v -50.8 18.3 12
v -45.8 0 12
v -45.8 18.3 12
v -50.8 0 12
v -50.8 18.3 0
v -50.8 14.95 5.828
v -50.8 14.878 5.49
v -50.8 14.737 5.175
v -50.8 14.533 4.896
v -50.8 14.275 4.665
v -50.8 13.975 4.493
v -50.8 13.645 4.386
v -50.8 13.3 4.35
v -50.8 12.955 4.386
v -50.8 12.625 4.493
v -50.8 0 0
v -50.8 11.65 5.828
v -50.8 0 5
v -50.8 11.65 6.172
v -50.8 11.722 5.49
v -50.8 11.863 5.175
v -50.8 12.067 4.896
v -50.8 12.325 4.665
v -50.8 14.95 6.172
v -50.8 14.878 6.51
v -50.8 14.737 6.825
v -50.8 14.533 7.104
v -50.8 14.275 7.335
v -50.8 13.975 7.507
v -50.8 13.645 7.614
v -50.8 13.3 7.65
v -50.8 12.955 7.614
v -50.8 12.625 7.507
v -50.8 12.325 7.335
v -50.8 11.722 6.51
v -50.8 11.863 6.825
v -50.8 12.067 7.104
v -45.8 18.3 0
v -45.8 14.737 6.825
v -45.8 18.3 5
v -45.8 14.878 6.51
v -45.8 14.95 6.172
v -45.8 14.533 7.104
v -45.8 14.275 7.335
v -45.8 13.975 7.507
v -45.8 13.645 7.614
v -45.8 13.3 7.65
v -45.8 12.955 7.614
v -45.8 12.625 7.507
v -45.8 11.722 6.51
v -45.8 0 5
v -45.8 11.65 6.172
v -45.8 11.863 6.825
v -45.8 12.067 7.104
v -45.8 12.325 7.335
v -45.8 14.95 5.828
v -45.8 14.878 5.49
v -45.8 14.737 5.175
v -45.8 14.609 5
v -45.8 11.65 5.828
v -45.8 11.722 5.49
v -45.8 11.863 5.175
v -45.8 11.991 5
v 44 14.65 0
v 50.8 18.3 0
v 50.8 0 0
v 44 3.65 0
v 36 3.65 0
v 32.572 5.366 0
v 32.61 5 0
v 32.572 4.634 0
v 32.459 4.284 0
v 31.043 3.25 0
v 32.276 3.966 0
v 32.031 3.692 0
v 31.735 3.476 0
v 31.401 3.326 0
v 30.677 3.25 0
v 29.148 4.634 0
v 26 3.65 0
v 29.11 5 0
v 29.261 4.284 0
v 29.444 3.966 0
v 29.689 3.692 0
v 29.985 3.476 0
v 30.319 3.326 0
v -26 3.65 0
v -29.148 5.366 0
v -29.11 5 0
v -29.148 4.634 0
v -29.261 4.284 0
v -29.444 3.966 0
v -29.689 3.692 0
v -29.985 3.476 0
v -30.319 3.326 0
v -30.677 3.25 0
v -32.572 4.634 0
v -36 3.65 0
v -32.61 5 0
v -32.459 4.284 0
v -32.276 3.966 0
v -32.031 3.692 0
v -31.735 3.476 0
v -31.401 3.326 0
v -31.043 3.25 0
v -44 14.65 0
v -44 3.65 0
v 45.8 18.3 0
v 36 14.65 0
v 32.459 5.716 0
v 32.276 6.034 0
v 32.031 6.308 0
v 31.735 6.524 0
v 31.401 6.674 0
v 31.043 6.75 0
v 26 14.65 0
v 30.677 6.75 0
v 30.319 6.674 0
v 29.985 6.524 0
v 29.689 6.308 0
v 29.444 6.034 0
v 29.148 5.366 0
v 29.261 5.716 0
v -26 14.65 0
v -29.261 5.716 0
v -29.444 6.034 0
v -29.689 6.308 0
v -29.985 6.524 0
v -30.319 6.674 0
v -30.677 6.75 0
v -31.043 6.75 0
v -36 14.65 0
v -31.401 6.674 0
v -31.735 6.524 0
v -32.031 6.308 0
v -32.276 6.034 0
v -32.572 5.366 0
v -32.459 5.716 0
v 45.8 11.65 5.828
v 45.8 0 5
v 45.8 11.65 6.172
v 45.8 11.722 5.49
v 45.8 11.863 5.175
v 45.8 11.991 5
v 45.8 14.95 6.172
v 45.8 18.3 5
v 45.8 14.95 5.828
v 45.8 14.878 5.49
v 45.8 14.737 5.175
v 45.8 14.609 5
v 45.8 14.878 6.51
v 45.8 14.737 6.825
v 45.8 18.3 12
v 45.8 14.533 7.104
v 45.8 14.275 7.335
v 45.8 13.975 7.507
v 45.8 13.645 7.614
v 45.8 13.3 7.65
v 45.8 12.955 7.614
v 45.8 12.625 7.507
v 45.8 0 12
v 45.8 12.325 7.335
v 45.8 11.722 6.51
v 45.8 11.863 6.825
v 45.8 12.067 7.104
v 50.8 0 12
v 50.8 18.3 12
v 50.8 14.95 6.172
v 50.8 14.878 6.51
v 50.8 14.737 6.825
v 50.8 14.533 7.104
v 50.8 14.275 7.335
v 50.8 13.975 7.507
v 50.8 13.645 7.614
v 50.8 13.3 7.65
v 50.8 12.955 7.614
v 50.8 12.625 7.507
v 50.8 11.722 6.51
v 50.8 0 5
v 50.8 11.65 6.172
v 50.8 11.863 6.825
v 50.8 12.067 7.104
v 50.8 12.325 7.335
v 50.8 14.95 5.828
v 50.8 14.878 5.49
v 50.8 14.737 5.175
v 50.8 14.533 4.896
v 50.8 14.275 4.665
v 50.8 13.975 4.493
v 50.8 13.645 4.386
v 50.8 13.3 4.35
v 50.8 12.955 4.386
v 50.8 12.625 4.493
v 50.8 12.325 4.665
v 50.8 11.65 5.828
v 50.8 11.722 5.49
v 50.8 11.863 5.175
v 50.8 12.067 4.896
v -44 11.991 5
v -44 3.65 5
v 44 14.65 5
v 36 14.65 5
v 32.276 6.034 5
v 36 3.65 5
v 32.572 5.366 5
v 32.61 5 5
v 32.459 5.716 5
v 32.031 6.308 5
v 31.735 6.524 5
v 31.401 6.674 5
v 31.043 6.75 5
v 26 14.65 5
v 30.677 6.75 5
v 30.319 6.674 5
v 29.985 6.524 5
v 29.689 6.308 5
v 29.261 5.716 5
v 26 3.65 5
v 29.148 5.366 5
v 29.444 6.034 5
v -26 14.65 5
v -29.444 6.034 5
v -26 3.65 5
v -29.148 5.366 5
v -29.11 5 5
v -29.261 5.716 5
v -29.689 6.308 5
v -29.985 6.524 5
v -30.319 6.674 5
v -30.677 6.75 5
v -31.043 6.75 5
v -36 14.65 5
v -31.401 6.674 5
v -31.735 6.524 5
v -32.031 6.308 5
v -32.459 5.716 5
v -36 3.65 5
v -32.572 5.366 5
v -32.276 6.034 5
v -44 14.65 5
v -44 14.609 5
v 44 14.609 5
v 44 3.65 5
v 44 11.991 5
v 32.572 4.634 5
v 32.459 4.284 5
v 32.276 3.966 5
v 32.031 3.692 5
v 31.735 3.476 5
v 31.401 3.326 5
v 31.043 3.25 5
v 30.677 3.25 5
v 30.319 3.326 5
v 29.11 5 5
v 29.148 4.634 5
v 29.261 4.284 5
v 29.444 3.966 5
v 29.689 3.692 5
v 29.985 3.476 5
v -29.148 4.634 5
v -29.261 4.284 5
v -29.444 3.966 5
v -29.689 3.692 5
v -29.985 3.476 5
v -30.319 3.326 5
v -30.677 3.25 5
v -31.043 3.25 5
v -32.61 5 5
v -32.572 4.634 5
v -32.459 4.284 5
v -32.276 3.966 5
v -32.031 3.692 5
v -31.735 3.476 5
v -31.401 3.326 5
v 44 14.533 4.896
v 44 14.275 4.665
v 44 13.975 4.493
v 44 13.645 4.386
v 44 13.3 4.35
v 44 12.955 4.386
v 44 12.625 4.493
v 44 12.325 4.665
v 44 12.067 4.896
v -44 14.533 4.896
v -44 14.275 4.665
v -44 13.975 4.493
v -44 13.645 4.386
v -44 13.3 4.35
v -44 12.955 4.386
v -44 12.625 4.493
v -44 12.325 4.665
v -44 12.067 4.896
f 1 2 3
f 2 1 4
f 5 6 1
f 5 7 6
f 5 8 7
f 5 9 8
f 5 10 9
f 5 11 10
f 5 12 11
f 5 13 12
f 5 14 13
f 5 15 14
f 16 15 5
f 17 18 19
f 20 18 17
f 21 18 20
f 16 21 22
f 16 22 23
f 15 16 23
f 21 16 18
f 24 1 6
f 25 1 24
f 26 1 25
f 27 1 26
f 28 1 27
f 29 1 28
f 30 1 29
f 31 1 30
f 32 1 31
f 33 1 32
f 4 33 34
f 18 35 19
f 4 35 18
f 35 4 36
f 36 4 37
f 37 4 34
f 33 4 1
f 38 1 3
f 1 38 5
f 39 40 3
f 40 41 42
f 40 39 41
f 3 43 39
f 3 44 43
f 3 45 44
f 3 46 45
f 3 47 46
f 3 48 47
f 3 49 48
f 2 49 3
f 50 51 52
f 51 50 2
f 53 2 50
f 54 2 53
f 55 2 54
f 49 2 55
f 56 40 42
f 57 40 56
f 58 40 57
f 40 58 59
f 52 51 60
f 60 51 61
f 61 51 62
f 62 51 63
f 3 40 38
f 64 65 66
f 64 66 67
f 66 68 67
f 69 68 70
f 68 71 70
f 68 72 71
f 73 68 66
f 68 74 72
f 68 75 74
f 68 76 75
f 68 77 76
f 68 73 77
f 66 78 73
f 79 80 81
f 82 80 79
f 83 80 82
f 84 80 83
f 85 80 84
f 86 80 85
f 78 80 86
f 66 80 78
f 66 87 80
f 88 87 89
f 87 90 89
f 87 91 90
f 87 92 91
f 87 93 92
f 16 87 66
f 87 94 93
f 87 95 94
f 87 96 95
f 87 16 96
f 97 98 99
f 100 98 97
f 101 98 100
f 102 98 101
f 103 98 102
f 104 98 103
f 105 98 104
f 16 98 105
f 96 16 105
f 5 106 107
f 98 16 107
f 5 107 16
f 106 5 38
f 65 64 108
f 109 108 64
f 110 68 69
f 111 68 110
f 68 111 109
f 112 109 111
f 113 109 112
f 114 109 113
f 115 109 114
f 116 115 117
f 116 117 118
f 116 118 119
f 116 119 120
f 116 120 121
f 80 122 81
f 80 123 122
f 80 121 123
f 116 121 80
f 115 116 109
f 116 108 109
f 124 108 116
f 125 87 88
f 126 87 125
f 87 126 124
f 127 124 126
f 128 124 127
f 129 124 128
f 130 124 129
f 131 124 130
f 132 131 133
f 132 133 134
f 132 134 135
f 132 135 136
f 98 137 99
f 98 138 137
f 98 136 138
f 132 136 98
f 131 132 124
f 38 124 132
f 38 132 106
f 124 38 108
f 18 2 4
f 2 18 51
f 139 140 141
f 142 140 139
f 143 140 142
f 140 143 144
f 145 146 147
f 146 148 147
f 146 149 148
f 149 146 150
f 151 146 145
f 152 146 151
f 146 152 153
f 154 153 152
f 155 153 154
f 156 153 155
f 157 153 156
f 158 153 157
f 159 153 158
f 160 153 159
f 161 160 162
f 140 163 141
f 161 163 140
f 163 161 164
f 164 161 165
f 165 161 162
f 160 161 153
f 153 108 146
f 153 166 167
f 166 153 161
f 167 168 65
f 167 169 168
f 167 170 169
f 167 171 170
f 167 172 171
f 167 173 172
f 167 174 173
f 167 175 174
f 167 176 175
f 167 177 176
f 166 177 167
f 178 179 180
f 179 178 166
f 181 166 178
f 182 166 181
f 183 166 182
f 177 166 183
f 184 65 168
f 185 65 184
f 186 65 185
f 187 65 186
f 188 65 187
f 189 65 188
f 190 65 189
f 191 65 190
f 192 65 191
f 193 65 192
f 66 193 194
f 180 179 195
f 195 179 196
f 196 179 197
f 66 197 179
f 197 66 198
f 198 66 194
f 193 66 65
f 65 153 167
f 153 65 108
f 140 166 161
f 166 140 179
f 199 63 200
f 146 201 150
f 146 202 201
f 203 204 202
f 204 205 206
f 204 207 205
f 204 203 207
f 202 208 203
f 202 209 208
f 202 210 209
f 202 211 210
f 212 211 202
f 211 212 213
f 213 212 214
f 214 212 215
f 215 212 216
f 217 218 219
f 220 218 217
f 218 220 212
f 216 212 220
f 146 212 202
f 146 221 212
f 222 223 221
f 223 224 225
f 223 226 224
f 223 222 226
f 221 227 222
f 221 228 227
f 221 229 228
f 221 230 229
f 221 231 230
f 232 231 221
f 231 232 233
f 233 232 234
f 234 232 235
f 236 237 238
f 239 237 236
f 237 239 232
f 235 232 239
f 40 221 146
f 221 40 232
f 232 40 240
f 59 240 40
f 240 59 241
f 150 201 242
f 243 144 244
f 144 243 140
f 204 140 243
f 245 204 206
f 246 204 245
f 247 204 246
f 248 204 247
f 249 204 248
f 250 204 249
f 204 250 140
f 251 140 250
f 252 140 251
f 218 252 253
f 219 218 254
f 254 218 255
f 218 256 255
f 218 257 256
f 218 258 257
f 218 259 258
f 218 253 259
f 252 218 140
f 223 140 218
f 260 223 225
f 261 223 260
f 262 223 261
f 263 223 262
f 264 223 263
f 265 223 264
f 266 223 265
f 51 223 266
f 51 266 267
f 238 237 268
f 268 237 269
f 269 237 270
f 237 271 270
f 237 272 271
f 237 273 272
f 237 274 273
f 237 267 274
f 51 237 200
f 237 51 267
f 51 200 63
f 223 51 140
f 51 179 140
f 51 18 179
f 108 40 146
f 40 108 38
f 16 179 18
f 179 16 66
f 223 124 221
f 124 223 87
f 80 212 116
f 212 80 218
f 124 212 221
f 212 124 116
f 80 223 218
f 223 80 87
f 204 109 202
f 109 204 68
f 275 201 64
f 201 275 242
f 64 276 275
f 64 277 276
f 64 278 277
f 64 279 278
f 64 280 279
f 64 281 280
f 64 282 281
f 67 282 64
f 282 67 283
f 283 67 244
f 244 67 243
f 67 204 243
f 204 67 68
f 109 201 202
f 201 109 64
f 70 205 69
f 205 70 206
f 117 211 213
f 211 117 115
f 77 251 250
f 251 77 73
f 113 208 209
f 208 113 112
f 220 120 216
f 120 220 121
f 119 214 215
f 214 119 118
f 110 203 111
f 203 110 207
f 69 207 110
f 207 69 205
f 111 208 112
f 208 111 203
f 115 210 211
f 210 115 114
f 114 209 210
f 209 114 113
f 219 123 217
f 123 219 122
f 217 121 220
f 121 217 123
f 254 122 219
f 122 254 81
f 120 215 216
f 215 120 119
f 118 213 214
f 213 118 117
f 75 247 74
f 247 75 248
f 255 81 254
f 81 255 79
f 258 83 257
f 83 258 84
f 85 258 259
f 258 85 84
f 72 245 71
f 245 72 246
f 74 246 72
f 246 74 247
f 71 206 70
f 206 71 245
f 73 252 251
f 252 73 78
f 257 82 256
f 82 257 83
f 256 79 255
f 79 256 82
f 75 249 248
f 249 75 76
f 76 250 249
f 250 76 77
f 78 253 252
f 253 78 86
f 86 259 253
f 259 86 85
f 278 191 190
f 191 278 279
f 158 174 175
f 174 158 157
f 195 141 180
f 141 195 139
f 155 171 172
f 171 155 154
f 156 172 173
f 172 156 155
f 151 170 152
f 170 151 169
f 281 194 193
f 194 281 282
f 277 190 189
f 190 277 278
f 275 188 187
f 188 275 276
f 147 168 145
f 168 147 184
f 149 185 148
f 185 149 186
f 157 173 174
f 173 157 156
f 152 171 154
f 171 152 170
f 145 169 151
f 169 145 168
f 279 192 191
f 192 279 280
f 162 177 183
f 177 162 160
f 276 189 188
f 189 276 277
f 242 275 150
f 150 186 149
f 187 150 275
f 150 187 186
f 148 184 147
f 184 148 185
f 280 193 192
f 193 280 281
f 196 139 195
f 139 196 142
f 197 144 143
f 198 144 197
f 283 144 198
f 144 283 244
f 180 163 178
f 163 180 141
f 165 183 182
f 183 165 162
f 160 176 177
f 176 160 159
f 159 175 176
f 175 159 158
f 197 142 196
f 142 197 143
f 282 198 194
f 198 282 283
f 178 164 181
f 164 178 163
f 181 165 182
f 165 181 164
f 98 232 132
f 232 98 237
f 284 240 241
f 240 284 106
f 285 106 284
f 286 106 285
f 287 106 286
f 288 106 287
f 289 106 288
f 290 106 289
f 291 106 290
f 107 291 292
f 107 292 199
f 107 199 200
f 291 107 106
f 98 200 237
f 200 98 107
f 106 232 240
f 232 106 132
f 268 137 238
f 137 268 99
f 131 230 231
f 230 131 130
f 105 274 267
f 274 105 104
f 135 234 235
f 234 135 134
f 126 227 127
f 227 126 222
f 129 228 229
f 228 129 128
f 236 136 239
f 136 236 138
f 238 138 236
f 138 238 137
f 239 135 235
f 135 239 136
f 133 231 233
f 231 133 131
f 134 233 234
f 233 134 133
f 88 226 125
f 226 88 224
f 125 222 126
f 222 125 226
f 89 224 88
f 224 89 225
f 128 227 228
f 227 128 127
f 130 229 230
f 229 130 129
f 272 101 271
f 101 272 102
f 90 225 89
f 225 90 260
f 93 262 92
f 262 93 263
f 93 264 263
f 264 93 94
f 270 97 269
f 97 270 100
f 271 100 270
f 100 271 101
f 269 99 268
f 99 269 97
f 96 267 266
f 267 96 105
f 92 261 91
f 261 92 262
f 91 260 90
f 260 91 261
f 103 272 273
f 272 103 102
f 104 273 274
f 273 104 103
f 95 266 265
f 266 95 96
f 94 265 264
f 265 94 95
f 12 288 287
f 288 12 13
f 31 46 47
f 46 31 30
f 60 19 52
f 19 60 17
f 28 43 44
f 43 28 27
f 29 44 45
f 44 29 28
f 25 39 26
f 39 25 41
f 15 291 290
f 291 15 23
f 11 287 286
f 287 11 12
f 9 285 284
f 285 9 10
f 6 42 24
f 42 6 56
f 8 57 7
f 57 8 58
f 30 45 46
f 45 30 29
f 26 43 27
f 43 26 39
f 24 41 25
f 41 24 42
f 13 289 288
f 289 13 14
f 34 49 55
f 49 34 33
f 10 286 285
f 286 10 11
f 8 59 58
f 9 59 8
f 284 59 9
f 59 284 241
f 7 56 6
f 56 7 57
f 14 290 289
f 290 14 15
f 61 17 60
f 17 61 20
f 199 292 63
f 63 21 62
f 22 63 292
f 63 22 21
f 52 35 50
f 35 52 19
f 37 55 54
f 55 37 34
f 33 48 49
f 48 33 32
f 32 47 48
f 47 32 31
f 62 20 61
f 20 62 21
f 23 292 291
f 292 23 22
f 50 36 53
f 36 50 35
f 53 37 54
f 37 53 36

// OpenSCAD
include <../../lib/relativity.scad/relativity.scad>

$fn=30;

differed("hole", "not(hole)") {
  box([101.6, 18.3, 5], anchor=-y-z) {
    mirrored(x)
    align(x-z)
      box([5, $parent_size.y, 12], anchor=x-z);
  }
  mirrored(x) {
    translated(61.72/2*x+5*y) rod(d=3.5, h=20, $class="hole");
    translated(50*x+13.3*y+6*z) orient(x) rod(d=3.3, h=20, $class="hole");
    translated(9.15*y) {
      box([52, 11, 20], $class="hole");
      translated(40*x) box([8, 11, 20], $class="hole");
    } 
  }
}
